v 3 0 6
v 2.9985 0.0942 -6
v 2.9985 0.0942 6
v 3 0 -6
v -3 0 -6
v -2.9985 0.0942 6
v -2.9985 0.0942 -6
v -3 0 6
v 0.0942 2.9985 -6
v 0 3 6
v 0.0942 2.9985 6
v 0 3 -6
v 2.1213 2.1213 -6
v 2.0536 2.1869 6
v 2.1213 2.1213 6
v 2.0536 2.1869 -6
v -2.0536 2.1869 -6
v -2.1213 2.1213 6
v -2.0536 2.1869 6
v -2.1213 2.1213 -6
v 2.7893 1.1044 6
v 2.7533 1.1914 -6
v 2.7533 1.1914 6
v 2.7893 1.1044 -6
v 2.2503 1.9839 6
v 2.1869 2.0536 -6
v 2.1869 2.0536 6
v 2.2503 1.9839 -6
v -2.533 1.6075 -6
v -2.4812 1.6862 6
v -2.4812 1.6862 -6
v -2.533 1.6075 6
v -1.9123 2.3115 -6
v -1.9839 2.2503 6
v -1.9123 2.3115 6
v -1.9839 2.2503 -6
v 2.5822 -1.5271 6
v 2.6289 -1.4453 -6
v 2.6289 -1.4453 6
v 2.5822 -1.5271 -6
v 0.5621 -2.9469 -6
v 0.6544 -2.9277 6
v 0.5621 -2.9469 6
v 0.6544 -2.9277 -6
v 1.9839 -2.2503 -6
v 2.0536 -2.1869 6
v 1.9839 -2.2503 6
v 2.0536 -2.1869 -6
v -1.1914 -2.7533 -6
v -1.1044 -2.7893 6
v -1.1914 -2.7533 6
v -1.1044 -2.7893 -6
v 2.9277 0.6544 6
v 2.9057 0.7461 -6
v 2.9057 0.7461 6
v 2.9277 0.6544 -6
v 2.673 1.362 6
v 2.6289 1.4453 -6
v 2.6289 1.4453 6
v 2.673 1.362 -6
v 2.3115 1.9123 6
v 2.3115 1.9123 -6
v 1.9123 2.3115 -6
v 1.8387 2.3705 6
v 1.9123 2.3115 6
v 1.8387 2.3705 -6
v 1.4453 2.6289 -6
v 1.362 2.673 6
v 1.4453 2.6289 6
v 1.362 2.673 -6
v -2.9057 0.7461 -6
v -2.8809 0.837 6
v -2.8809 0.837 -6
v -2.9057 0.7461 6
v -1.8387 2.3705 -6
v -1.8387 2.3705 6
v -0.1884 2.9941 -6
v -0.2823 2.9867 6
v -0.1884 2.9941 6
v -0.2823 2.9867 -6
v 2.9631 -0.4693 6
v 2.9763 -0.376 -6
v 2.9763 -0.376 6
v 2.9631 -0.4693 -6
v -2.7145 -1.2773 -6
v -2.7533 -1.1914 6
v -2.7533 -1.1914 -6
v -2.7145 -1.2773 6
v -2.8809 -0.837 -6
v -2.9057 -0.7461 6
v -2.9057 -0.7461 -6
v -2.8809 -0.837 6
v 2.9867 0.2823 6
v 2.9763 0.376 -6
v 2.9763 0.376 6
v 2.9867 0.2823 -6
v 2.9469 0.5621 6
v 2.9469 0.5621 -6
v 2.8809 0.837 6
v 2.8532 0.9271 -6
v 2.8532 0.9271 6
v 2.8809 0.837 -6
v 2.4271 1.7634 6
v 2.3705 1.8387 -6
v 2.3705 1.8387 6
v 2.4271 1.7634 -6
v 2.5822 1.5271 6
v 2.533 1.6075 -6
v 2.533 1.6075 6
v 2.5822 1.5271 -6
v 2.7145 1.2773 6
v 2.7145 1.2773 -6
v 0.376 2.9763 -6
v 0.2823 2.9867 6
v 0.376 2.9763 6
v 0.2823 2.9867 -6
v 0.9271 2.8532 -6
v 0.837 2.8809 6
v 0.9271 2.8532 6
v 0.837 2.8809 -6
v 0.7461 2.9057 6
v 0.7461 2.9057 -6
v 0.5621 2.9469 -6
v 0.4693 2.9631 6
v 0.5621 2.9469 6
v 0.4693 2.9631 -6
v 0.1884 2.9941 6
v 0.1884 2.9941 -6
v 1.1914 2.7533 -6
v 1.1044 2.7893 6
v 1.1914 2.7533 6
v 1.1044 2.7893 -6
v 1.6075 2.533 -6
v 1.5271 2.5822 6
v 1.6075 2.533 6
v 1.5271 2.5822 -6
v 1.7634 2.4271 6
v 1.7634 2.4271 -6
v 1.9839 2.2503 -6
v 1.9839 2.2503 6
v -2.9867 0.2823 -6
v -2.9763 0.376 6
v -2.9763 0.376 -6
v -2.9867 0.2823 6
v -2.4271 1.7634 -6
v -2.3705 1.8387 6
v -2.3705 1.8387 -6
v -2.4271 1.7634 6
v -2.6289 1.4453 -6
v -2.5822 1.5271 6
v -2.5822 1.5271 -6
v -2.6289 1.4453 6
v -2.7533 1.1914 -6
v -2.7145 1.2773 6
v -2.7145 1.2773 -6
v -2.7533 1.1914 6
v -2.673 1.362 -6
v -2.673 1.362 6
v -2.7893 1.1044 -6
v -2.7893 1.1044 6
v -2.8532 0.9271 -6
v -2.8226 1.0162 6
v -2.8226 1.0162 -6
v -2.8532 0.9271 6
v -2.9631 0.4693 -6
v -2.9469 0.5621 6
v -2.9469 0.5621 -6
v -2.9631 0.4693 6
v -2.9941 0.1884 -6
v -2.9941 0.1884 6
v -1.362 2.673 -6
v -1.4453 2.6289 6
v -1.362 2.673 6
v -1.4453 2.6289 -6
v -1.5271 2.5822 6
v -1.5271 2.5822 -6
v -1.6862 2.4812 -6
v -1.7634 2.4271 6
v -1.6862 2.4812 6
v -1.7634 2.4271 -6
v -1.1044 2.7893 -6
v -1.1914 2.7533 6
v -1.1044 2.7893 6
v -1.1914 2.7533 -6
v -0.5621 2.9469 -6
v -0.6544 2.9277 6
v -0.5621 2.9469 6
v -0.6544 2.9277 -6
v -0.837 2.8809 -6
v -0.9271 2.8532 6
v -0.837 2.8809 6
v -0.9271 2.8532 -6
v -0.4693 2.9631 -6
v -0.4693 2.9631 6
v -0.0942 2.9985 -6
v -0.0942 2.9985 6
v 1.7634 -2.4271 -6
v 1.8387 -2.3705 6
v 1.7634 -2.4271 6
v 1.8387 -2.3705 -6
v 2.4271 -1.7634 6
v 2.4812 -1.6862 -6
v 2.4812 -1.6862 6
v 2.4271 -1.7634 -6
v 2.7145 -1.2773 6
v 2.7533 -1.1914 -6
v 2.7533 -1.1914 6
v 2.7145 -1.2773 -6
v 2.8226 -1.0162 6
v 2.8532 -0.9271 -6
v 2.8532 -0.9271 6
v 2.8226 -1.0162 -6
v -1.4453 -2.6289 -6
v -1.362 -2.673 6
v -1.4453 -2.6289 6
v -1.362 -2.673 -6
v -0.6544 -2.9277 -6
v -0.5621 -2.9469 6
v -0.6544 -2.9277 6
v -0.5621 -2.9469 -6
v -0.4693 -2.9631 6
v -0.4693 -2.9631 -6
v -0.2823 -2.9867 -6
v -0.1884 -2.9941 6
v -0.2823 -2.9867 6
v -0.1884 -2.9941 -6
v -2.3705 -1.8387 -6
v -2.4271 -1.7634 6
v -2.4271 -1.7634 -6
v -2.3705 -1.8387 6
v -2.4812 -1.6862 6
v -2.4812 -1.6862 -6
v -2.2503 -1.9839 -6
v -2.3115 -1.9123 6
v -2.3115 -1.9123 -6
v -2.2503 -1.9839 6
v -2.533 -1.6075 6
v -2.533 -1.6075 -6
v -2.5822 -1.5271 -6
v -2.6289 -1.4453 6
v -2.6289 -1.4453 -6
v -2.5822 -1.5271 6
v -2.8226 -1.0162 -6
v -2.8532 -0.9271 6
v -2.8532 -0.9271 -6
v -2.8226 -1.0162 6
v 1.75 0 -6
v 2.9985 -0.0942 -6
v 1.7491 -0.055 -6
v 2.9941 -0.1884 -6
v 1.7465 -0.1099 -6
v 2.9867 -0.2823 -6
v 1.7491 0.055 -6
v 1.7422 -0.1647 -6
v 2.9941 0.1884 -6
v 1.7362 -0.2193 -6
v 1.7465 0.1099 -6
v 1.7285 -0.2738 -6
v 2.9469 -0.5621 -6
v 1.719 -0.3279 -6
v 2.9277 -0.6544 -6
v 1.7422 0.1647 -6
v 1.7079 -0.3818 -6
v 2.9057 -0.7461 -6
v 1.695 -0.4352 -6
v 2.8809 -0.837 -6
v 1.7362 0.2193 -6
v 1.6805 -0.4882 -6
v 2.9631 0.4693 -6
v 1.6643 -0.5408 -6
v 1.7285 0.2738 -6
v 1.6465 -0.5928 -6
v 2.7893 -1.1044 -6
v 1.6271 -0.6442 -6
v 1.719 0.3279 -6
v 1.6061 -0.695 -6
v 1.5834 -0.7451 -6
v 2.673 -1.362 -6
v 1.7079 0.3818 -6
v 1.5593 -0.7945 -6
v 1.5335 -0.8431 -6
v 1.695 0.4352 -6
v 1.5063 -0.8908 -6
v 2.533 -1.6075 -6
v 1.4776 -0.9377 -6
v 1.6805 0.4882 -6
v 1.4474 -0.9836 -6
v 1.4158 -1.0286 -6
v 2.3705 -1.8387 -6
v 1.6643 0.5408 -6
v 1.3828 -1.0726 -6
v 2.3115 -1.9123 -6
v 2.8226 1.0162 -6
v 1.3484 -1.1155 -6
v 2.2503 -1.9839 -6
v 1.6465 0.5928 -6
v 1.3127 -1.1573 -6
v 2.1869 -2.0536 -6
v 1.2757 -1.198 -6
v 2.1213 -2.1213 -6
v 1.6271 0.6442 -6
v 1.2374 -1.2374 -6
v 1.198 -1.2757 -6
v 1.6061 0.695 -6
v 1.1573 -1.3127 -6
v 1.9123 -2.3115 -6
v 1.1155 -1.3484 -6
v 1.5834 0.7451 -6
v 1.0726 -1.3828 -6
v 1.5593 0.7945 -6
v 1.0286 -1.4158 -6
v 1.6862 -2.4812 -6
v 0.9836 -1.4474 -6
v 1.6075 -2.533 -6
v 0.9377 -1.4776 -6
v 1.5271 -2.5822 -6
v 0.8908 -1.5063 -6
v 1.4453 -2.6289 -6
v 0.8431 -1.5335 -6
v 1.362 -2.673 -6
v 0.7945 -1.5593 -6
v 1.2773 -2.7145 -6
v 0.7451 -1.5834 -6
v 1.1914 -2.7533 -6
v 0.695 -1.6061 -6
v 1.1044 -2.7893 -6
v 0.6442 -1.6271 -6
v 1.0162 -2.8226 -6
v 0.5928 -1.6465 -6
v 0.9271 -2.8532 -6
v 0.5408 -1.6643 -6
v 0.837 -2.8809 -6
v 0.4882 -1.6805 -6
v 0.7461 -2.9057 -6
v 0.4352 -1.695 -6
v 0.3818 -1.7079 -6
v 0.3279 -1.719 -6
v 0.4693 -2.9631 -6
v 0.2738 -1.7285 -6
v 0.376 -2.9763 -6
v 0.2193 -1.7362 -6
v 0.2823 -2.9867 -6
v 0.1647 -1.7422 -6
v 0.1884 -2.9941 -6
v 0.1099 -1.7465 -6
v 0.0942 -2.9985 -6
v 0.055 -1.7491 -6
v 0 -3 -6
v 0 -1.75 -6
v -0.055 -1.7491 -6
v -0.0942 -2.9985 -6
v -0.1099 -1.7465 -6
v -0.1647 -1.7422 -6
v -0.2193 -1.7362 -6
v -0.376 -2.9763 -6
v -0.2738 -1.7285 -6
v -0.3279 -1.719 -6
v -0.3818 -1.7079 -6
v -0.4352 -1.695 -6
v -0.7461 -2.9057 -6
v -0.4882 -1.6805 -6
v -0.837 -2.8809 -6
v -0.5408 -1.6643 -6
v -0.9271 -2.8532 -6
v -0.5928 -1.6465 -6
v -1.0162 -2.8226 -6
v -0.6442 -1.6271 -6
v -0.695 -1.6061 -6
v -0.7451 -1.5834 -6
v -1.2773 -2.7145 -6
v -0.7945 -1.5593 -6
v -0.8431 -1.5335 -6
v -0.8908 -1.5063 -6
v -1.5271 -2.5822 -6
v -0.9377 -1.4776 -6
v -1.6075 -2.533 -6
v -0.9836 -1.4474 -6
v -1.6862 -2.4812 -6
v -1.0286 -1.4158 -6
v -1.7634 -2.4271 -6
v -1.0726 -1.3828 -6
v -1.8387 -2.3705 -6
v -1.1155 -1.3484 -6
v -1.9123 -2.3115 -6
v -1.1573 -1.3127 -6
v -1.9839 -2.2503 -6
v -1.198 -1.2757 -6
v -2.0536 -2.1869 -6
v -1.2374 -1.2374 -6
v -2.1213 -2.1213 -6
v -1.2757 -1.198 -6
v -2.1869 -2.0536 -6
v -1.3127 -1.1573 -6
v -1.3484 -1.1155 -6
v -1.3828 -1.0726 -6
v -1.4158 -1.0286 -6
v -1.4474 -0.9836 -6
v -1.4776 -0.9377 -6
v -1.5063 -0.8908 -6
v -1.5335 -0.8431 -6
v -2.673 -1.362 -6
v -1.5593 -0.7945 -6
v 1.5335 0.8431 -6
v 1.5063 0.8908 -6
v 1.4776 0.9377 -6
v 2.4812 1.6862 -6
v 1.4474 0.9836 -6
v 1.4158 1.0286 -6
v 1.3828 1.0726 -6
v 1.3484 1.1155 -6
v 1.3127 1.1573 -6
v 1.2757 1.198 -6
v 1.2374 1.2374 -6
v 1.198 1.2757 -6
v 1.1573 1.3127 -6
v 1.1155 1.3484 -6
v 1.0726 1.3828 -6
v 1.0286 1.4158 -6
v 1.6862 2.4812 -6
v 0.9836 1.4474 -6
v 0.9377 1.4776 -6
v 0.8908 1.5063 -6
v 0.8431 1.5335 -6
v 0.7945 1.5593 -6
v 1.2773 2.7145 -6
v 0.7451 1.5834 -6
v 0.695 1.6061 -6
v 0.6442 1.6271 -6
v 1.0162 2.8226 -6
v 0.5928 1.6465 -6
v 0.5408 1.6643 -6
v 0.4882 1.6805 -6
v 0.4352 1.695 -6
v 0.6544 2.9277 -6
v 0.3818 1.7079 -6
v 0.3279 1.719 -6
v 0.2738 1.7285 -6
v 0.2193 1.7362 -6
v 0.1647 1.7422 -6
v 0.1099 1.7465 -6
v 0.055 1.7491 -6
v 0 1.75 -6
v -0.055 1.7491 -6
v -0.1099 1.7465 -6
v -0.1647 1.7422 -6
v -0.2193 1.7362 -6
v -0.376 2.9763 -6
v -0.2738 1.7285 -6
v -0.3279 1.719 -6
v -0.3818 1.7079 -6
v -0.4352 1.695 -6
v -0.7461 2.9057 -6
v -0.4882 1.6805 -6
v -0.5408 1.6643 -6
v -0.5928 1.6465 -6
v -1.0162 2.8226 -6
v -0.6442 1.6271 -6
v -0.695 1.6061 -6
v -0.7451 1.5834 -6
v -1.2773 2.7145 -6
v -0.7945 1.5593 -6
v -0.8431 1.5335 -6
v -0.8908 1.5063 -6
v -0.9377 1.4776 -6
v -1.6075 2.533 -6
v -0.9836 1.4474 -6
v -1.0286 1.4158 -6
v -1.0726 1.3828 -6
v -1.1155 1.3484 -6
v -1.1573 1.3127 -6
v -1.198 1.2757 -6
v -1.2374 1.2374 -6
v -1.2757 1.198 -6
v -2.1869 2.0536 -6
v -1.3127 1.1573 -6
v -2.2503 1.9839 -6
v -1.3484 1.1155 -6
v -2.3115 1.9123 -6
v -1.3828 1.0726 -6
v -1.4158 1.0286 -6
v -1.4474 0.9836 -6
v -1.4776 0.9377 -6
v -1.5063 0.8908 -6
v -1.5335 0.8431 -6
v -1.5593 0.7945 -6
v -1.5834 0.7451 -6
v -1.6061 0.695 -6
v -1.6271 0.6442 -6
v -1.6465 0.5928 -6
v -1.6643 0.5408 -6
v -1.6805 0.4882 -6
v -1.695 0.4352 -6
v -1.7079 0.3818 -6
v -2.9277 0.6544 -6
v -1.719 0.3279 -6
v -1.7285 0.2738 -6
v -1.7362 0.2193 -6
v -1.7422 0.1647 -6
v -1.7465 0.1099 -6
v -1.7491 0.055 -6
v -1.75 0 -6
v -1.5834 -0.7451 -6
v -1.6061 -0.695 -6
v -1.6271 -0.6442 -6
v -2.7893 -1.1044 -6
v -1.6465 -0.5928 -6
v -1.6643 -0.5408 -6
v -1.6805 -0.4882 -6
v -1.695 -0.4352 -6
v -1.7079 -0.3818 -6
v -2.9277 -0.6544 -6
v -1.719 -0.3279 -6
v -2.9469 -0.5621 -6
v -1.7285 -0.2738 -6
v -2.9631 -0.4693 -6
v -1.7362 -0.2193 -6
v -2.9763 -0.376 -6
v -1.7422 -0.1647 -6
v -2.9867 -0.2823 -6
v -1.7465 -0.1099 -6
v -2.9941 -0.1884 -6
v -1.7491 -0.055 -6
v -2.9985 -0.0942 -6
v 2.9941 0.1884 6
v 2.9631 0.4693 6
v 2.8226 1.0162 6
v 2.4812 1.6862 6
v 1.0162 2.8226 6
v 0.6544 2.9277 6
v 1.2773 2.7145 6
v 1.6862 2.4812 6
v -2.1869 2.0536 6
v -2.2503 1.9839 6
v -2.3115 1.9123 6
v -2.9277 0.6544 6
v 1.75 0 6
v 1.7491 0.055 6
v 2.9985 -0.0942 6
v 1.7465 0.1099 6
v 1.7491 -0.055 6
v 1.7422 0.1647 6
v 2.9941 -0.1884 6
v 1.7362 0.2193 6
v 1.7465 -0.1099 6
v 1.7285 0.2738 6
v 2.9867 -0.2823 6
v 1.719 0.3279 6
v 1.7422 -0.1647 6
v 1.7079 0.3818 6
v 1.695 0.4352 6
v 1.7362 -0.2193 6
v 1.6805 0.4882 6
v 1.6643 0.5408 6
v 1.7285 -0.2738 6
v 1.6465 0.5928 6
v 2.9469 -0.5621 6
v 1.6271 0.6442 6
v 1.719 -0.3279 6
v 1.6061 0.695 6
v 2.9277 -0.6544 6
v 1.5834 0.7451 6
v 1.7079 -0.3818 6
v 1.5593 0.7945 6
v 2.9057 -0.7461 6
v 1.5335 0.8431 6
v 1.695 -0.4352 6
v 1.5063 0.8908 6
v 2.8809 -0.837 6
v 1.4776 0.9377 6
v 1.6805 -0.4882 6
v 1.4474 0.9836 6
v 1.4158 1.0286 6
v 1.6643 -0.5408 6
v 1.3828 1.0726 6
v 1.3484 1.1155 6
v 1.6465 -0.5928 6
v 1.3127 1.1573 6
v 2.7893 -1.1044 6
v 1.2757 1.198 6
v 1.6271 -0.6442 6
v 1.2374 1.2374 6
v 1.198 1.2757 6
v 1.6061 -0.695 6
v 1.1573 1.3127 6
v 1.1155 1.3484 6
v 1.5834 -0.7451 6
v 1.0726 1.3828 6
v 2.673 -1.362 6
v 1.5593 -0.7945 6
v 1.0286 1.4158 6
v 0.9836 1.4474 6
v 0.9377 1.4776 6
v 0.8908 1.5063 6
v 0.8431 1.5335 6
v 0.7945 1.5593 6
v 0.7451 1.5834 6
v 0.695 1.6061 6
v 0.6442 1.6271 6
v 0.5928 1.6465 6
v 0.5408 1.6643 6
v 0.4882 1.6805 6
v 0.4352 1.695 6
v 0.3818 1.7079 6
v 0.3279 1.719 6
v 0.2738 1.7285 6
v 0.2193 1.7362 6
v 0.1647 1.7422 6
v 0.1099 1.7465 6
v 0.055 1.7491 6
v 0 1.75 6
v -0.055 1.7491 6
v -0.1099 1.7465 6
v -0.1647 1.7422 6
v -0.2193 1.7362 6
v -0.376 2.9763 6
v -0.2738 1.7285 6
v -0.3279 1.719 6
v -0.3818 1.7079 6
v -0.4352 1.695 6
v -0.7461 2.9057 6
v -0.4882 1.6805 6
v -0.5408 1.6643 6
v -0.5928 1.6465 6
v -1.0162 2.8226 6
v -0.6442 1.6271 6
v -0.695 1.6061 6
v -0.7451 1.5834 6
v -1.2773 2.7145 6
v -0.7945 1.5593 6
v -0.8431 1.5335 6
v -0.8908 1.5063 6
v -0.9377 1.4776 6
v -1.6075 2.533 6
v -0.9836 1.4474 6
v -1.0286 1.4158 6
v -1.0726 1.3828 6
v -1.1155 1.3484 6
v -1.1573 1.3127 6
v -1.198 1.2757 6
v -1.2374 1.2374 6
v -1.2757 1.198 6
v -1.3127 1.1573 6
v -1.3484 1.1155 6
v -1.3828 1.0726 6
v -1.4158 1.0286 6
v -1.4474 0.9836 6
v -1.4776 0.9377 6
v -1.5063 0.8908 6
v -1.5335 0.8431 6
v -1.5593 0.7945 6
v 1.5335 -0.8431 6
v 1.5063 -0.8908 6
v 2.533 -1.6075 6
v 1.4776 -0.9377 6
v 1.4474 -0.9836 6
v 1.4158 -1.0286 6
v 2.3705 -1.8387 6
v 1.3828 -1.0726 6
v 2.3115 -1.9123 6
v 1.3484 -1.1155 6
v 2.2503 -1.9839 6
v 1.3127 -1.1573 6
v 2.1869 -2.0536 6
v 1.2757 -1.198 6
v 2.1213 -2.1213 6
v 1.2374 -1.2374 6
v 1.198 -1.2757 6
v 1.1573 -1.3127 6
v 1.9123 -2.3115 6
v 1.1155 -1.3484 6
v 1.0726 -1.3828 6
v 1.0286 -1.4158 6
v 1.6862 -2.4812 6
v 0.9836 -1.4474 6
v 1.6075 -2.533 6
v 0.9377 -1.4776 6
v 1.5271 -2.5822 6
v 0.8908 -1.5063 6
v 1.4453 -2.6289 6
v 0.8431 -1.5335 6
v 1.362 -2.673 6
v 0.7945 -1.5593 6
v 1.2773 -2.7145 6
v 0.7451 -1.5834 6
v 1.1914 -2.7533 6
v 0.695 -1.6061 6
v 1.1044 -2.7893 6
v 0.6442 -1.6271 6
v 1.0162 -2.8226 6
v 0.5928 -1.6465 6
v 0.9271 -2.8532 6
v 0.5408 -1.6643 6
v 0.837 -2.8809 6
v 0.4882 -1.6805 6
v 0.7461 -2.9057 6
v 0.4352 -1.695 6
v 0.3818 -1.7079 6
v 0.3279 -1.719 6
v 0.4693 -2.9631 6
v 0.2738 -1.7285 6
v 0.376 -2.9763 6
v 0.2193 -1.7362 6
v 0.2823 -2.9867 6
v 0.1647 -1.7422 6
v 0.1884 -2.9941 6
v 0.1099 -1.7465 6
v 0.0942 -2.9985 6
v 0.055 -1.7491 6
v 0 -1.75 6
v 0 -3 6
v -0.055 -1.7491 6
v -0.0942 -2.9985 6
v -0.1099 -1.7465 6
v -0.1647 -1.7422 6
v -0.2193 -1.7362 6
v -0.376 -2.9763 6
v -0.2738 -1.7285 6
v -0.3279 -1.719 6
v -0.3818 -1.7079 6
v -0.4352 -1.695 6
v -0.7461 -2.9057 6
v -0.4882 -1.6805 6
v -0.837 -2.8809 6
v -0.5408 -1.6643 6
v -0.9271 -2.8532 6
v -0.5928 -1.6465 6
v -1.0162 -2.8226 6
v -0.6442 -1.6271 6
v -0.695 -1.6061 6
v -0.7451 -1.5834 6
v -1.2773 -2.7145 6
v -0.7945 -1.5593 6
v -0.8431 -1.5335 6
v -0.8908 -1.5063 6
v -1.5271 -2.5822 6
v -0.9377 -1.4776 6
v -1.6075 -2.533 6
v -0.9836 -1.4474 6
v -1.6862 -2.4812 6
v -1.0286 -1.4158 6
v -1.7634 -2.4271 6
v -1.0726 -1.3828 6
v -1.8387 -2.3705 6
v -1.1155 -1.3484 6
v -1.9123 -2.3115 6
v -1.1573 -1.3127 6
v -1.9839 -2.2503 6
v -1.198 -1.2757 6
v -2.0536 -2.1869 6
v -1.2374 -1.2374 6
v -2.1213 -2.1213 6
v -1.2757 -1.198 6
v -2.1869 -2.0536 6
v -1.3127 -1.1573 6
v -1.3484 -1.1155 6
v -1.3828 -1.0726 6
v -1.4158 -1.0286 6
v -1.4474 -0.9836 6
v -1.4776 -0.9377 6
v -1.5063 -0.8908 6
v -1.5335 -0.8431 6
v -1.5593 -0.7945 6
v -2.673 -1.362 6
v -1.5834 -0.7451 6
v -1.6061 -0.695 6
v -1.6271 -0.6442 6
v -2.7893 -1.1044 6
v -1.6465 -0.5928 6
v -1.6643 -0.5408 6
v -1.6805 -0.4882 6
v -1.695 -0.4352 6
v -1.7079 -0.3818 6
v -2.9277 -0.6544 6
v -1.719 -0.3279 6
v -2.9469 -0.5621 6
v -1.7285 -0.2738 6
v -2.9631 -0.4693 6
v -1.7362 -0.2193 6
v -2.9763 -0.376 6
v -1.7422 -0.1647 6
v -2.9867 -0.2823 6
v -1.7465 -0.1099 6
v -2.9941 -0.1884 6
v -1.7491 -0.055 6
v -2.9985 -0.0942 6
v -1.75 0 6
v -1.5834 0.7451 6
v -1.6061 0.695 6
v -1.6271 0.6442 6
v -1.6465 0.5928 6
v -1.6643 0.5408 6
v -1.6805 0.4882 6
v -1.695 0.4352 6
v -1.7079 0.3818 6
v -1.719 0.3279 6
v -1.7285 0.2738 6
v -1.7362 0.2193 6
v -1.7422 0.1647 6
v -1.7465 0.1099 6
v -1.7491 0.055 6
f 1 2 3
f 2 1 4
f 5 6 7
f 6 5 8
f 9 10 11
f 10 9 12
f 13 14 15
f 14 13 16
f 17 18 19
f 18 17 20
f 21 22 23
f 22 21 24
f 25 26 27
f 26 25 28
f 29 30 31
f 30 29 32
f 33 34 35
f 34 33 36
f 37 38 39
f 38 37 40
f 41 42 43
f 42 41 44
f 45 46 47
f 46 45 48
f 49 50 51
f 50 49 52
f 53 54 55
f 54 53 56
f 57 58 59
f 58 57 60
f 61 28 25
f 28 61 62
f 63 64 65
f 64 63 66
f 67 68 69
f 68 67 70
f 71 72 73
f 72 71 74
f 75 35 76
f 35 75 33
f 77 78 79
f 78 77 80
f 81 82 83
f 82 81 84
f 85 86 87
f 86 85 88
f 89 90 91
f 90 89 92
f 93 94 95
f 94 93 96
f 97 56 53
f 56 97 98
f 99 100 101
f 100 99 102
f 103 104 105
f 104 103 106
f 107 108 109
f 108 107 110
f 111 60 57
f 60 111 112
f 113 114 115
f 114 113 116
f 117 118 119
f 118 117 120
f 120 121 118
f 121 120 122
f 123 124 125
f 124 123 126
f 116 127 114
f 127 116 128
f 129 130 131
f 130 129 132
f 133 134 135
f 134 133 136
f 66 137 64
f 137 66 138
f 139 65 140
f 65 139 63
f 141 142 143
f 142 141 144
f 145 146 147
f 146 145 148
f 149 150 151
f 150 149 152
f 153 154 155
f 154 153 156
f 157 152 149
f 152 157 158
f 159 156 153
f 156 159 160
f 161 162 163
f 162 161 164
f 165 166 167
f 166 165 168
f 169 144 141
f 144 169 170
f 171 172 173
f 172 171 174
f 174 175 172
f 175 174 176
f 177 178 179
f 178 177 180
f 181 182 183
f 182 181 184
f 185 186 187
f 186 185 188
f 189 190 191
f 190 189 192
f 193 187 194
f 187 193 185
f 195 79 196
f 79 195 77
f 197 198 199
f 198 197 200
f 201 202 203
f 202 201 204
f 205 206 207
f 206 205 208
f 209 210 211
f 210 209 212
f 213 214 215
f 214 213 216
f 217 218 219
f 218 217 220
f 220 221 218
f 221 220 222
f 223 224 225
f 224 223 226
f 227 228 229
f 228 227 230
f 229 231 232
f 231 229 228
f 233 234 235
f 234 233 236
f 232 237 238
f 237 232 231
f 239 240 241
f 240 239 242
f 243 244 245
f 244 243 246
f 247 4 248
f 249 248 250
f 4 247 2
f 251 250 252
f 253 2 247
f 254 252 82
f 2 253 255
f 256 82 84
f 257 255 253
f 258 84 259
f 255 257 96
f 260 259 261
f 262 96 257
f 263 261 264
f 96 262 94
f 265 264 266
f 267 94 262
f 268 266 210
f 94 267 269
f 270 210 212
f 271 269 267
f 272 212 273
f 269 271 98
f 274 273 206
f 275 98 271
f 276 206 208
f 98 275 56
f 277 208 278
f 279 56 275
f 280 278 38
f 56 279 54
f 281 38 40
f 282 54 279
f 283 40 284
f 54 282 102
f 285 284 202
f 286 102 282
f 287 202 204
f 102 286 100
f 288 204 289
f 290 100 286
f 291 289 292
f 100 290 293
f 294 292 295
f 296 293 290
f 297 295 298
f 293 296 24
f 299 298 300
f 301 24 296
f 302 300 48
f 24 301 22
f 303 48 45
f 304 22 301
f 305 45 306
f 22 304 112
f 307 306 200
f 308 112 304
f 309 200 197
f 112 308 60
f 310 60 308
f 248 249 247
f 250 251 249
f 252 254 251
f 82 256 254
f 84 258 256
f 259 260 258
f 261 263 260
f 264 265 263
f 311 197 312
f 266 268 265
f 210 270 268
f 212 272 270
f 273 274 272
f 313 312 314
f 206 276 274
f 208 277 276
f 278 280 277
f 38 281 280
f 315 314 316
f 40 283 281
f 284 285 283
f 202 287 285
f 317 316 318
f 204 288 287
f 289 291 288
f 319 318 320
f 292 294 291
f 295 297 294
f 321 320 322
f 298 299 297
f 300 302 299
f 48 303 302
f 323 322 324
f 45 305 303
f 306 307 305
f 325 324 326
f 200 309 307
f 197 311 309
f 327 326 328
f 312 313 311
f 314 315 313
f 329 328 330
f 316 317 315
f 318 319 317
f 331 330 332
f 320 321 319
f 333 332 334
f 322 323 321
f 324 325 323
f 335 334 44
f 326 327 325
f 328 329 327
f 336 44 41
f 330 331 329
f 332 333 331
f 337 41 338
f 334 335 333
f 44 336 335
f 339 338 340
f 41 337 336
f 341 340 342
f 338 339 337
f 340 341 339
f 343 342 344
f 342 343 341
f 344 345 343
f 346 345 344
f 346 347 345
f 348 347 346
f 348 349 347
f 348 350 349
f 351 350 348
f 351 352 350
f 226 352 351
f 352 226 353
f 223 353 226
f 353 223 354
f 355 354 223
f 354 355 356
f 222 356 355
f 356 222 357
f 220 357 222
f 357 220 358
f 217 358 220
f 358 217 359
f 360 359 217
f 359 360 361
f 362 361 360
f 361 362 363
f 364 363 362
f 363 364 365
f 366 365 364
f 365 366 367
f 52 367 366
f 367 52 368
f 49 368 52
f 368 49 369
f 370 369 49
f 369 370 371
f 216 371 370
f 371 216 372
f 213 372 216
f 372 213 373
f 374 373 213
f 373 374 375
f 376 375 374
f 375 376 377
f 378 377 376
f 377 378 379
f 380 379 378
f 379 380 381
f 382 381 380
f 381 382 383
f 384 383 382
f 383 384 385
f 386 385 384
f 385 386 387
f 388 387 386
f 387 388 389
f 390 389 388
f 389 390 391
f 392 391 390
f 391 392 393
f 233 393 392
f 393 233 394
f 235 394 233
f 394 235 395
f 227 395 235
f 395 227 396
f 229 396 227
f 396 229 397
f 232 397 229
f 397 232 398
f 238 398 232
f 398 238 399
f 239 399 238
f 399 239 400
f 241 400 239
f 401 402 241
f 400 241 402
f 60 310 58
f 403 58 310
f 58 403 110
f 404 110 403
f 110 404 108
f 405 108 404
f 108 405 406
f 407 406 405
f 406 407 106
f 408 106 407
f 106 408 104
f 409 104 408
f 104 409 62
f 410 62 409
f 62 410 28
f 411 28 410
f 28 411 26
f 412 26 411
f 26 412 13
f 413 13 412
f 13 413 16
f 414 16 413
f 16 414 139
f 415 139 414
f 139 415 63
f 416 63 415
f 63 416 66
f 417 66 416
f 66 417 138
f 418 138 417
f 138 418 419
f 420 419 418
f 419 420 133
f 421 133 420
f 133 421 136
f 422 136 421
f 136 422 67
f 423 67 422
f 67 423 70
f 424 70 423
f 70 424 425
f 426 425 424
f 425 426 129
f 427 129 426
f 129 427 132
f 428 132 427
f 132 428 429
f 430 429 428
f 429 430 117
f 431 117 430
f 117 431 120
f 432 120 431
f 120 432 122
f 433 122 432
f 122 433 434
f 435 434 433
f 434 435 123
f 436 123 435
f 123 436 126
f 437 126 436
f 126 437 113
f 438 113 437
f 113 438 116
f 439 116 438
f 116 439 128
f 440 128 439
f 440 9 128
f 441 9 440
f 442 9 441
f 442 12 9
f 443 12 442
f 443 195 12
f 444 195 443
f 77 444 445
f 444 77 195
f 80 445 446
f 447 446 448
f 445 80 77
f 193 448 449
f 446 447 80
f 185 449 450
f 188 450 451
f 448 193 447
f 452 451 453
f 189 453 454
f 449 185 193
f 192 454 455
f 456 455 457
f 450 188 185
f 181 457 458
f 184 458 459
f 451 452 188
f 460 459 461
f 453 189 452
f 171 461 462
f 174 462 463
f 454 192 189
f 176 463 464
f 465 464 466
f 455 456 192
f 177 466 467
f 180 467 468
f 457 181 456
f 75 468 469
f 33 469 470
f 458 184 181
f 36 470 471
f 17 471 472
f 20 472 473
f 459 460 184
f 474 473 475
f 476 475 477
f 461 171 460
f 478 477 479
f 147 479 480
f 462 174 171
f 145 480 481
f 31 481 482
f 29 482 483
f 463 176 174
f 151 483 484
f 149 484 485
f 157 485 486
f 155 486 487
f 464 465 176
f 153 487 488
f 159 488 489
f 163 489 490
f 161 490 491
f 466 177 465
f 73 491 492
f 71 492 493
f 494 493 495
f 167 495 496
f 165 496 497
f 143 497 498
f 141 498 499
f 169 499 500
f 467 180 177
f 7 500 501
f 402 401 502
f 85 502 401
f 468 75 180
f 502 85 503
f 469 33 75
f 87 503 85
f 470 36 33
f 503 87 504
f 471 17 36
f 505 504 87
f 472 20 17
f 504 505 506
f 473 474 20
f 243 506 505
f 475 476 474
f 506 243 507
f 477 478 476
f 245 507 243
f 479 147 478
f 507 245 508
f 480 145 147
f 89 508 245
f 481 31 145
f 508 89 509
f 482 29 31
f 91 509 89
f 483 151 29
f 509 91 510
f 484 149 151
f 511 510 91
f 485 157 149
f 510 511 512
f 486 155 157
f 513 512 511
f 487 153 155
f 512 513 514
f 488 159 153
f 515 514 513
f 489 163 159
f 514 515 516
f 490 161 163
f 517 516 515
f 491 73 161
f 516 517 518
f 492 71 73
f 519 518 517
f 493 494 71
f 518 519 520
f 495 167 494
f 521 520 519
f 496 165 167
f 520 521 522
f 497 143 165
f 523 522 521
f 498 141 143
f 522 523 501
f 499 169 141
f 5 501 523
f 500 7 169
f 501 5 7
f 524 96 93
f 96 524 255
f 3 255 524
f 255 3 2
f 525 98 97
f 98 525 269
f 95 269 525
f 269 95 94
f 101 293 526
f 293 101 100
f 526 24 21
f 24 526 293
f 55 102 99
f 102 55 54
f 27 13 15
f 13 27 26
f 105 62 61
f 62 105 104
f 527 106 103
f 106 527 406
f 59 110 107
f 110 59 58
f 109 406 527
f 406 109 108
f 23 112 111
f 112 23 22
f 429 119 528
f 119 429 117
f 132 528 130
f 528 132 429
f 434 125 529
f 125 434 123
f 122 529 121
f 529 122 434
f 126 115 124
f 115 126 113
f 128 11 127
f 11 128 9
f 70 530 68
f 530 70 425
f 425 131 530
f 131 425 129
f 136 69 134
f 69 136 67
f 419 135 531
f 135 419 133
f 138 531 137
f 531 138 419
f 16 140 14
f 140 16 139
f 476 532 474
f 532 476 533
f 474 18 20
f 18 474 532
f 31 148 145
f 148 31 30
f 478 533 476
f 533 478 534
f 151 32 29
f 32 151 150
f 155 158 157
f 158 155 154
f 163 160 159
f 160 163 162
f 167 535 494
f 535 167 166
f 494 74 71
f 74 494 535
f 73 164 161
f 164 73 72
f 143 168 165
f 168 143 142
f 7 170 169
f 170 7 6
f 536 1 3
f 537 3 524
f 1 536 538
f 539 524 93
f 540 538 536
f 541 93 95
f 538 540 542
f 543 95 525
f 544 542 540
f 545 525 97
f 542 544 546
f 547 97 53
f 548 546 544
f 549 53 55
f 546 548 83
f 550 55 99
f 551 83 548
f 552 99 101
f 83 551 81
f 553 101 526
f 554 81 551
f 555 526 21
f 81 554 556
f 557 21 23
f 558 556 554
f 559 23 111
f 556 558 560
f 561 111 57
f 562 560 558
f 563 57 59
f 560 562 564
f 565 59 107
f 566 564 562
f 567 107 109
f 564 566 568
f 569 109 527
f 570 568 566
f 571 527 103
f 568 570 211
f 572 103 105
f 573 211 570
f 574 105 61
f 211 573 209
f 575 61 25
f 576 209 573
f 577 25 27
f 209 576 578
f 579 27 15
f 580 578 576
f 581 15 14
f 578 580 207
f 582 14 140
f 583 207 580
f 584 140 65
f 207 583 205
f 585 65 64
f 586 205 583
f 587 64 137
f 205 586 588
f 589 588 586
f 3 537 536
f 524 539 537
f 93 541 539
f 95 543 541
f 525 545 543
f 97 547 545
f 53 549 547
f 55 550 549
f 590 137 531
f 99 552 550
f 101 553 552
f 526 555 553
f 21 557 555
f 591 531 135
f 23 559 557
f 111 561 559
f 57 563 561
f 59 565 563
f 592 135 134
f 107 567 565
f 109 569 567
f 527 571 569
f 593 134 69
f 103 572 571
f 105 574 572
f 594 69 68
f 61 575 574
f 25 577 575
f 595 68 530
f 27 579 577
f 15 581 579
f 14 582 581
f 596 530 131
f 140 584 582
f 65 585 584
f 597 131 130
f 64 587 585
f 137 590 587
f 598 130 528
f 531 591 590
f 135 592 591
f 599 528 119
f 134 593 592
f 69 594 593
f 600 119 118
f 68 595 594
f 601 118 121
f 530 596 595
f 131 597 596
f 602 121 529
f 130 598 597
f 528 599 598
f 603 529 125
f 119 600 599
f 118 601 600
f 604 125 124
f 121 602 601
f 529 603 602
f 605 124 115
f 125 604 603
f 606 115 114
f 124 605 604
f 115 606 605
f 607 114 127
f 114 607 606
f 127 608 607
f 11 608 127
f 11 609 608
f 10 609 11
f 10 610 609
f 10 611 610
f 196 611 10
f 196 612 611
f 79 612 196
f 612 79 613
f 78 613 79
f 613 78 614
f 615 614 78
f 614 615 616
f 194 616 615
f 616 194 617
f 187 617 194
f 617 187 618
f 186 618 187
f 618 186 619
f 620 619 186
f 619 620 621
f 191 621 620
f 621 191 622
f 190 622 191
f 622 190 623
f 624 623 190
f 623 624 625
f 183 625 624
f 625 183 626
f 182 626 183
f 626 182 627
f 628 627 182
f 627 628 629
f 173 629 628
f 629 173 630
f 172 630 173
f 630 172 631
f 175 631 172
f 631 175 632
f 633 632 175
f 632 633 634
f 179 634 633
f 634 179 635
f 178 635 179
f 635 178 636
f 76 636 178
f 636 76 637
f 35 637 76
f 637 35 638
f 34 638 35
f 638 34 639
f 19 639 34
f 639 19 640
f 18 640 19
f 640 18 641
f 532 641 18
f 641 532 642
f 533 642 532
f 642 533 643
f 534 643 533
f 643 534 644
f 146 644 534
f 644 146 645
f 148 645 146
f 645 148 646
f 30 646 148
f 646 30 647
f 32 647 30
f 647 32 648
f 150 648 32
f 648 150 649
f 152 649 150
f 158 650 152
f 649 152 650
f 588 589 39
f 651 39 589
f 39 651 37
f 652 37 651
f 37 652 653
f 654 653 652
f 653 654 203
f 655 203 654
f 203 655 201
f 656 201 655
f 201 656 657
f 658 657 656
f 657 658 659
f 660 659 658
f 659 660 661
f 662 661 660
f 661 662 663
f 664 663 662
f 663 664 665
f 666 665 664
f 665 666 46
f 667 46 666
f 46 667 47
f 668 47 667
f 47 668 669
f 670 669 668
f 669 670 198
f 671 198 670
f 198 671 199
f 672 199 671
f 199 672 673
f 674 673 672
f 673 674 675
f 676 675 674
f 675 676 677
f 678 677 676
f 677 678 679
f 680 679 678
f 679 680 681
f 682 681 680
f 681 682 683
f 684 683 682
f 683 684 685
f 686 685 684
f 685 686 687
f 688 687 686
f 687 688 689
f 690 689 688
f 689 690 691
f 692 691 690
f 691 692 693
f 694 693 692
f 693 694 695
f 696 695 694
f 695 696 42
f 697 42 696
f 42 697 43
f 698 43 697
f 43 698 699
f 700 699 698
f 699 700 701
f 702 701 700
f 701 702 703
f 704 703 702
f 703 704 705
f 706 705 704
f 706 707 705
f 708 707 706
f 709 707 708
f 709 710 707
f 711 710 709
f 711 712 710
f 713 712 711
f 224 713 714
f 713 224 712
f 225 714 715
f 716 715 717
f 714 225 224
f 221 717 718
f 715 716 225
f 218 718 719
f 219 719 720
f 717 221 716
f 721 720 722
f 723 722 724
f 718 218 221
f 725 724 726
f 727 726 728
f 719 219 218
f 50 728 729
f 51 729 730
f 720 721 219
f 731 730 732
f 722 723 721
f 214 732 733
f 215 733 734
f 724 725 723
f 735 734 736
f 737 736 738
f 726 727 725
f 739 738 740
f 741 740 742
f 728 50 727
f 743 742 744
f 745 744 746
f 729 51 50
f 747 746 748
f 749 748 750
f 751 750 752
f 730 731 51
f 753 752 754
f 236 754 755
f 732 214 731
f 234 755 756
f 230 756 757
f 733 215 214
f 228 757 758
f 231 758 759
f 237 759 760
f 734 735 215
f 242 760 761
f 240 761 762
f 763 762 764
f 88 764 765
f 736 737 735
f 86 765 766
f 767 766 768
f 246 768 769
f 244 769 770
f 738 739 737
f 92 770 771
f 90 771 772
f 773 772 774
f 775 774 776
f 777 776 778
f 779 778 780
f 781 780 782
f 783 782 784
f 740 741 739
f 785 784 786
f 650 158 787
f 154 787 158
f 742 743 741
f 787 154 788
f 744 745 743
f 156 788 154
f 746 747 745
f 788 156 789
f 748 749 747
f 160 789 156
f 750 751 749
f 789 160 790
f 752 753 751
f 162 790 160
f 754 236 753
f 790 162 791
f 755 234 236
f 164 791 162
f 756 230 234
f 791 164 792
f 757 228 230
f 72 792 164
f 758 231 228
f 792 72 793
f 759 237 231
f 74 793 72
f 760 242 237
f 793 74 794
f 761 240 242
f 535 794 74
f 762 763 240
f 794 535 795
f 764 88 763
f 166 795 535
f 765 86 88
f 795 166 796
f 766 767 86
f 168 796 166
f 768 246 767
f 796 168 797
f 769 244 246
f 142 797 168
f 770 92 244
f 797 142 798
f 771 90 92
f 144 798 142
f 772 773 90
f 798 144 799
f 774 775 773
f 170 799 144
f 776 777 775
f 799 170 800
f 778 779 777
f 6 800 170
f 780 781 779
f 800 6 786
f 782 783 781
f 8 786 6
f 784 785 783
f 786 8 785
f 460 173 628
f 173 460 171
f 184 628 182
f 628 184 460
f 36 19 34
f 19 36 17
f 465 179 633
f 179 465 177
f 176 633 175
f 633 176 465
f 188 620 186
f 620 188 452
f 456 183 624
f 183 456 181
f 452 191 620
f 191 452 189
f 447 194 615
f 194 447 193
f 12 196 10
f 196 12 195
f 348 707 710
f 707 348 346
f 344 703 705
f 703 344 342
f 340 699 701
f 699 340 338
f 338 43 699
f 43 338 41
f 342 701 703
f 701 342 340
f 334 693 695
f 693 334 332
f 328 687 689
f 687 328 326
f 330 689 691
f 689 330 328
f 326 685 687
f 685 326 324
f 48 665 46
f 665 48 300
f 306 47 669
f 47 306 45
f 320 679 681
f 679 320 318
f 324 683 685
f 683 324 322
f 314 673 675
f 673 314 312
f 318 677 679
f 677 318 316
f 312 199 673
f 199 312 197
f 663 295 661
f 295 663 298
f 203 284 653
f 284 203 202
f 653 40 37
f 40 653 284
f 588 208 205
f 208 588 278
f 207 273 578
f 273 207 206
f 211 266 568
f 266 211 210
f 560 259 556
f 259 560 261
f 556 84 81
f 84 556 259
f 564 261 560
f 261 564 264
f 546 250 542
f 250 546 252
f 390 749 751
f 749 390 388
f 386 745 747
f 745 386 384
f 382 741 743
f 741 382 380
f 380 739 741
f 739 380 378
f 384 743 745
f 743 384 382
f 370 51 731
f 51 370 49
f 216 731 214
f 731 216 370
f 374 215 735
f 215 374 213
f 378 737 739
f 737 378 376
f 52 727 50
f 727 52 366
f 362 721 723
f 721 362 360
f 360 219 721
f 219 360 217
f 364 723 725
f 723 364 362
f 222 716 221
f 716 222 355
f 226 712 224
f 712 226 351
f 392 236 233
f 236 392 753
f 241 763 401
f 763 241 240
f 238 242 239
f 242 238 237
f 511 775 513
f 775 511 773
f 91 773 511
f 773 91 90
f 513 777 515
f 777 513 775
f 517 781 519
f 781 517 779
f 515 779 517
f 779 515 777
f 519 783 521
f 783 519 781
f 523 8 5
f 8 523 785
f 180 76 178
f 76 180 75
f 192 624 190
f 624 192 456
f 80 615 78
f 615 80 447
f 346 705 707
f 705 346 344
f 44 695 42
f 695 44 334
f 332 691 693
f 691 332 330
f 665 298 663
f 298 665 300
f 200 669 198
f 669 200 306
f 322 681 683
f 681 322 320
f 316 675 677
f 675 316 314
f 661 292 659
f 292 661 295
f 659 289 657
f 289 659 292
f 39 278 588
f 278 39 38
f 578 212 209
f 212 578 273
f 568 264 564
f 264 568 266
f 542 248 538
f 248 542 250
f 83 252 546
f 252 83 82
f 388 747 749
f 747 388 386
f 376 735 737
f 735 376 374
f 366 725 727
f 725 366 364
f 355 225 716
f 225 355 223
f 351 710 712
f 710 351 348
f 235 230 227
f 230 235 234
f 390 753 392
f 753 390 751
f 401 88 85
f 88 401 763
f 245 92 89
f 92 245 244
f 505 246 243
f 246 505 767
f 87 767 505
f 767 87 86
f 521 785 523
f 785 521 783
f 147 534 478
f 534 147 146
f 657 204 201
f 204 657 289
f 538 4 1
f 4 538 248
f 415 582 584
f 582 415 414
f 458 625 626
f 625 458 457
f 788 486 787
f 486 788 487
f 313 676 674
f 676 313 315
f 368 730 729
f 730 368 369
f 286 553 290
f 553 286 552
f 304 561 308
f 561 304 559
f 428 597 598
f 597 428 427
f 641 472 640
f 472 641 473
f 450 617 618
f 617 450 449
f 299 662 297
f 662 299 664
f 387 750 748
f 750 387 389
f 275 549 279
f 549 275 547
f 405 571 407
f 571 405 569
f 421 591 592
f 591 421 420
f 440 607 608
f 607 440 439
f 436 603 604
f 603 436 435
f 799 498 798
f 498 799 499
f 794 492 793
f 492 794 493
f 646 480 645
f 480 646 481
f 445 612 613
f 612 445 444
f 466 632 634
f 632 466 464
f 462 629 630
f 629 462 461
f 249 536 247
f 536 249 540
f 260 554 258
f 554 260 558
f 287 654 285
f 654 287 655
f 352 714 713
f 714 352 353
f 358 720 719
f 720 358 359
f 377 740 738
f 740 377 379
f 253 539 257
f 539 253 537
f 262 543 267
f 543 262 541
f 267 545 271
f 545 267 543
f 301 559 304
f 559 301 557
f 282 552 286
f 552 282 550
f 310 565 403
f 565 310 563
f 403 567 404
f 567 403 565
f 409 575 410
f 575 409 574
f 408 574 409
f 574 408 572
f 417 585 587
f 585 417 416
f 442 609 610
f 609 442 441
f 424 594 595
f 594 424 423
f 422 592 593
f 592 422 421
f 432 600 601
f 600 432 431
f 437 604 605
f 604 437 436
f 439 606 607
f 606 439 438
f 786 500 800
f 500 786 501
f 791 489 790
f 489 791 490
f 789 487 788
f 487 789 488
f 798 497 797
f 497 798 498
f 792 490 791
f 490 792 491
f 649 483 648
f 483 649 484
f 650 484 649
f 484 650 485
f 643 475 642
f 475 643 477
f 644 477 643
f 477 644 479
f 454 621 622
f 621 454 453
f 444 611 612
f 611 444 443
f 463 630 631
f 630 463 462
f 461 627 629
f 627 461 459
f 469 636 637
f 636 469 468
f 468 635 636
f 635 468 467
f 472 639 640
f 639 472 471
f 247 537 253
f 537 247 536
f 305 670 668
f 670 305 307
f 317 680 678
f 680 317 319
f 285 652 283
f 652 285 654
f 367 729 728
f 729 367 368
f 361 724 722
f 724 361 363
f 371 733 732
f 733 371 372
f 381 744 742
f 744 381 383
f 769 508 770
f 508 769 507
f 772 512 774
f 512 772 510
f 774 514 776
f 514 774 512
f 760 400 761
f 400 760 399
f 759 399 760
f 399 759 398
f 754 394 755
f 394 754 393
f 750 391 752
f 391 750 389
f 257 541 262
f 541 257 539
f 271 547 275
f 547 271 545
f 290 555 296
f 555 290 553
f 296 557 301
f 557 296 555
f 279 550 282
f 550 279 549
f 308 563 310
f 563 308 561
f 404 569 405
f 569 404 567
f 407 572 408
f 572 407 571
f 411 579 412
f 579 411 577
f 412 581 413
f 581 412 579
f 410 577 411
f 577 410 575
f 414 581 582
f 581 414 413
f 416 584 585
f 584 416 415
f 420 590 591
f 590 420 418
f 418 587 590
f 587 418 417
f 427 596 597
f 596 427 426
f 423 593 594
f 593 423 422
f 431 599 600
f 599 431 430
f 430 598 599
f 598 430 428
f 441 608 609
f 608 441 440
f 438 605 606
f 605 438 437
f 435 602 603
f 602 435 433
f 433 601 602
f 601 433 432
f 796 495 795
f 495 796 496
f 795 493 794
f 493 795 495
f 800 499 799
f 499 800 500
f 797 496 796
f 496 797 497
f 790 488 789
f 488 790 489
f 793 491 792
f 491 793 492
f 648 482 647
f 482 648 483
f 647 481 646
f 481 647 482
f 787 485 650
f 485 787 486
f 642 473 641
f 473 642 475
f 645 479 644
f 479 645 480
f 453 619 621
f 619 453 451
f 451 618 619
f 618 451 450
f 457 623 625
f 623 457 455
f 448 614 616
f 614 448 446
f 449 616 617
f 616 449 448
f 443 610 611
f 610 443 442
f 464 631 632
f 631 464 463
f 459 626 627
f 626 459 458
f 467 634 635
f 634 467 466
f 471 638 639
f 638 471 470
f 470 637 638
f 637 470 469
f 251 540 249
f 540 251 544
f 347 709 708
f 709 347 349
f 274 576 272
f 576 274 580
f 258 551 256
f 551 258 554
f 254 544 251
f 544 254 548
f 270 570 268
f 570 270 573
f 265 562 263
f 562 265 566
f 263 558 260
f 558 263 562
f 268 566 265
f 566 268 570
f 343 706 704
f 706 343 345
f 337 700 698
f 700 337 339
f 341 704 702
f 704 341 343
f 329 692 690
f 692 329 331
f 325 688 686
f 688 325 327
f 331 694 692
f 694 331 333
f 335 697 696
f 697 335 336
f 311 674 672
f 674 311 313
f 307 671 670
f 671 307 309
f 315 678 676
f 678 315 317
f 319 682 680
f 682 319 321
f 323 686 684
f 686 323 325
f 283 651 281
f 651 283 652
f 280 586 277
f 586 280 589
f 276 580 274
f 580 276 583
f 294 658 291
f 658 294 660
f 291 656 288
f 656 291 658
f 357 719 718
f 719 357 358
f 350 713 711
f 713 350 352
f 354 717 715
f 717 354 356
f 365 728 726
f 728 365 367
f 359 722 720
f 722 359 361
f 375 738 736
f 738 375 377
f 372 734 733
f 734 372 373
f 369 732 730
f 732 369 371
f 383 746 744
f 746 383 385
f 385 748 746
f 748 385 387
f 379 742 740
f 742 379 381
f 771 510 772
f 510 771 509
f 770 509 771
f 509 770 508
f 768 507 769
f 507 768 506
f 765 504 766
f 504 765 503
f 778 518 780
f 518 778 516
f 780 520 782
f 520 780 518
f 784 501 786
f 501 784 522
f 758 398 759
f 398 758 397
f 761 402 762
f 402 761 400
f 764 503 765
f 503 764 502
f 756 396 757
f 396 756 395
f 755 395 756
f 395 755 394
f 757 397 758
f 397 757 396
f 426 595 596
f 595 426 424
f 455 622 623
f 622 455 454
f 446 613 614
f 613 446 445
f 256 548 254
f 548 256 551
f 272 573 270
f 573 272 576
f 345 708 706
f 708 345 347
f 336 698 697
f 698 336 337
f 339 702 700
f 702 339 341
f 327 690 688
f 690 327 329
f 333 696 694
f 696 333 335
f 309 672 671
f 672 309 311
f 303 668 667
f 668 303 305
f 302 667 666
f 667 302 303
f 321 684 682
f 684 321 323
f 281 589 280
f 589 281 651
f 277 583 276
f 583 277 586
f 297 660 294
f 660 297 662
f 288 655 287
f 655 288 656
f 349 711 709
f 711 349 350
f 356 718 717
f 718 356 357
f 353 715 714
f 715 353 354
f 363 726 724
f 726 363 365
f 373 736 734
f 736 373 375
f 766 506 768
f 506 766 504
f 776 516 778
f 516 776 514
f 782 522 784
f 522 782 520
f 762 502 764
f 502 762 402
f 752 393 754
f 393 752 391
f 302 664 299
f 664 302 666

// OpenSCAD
$fn = 200;//количество полигонов

height = 12;
ext_diameter = 6;
int_diameter = 3.5;


difference()
{
    cylinder(h = height, d = ext_diameter, center = true);
    cylinder(h = height+1, d = int_diameter, center = true);
}
